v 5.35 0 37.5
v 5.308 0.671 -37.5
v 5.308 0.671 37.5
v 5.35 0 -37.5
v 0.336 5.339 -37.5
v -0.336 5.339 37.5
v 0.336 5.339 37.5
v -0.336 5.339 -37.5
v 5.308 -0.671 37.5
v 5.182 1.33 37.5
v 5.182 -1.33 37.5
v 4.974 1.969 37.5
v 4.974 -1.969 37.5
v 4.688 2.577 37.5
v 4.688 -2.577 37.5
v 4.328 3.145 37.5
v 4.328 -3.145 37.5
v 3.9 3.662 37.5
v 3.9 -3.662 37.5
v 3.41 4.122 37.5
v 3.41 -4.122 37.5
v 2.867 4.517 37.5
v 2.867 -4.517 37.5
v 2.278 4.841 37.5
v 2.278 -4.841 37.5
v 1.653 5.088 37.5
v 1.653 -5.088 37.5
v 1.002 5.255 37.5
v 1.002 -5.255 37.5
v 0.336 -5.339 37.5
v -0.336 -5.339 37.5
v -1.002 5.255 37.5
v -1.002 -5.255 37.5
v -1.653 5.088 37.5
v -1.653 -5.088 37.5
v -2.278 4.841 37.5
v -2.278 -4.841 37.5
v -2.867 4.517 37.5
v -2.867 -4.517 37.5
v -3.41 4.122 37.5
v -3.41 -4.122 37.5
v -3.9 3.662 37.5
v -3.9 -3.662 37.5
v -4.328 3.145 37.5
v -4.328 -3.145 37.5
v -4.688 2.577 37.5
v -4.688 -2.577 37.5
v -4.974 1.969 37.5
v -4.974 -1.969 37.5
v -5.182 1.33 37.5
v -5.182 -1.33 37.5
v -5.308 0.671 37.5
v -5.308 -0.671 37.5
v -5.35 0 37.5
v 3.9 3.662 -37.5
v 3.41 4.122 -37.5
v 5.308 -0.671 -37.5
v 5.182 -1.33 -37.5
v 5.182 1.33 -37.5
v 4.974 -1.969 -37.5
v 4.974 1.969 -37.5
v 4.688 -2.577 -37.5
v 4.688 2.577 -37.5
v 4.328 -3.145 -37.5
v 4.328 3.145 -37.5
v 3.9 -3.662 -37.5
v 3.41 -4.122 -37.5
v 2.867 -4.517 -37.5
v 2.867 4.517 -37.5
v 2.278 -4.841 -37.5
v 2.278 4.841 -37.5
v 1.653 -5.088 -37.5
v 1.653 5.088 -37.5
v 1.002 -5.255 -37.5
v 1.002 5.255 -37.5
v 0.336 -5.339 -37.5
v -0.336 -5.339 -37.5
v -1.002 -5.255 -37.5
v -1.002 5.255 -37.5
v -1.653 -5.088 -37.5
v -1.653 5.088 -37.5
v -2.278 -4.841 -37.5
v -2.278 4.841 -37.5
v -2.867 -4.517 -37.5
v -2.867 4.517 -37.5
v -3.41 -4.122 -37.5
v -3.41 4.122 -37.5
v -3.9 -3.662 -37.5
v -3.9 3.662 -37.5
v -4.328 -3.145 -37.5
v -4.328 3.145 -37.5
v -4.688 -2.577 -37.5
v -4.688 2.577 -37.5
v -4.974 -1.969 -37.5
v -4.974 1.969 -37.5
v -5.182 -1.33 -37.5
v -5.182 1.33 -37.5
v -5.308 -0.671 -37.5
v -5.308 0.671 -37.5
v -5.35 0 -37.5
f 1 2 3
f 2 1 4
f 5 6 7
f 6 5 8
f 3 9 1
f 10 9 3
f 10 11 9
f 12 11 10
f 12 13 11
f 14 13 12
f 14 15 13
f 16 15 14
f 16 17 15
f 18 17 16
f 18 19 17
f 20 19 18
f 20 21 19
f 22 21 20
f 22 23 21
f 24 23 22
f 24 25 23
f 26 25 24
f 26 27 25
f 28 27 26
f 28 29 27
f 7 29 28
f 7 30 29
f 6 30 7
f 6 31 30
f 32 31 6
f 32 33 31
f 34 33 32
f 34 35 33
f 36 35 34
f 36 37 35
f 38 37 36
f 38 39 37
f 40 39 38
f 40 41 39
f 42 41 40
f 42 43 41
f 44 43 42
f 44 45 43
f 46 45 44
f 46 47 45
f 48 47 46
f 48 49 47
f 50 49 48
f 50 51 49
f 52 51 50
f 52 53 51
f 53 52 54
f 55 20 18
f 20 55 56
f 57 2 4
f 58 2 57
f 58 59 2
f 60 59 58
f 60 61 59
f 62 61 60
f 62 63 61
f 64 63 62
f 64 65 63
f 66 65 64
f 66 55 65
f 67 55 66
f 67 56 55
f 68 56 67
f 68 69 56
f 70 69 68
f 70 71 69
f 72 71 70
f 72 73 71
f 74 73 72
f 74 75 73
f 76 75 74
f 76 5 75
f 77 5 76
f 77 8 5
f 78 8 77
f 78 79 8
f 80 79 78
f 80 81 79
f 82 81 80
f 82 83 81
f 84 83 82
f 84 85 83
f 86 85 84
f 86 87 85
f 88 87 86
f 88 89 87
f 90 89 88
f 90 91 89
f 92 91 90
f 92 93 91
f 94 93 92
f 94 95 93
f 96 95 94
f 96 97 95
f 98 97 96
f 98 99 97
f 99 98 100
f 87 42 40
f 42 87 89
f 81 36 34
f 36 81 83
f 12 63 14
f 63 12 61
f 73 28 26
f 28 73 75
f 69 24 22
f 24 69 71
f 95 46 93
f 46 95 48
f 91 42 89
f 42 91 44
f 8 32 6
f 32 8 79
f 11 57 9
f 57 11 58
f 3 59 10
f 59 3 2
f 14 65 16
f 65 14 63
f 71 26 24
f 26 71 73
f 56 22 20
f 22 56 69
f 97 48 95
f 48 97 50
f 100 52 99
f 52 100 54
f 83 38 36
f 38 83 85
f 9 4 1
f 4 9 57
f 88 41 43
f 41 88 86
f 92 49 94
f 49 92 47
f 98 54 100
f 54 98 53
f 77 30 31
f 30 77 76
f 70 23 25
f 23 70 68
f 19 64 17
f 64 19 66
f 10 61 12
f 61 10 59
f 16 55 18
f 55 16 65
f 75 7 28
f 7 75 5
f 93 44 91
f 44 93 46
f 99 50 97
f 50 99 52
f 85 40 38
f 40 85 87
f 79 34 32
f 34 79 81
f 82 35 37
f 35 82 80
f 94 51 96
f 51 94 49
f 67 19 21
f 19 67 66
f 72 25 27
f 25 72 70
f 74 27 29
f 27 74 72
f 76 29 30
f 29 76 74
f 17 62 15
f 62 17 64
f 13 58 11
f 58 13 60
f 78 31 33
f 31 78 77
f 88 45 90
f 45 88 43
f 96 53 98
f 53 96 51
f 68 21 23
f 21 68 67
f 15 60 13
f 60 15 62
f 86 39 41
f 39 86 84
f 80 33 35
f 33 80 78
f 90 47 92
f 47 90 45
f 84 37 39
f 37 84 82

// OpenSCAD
$fn = 50;


difference() {
	union() {
		translate(v = [0, 0, -37.5000000000]) {
			cylinder(h = 75, r = 5.3500000000);
		}
	}
	union() {
		translate(v = [0, 0, -100.0000000000]) {
			cylinder(h = 200, r = 0);
		}
	}
}
